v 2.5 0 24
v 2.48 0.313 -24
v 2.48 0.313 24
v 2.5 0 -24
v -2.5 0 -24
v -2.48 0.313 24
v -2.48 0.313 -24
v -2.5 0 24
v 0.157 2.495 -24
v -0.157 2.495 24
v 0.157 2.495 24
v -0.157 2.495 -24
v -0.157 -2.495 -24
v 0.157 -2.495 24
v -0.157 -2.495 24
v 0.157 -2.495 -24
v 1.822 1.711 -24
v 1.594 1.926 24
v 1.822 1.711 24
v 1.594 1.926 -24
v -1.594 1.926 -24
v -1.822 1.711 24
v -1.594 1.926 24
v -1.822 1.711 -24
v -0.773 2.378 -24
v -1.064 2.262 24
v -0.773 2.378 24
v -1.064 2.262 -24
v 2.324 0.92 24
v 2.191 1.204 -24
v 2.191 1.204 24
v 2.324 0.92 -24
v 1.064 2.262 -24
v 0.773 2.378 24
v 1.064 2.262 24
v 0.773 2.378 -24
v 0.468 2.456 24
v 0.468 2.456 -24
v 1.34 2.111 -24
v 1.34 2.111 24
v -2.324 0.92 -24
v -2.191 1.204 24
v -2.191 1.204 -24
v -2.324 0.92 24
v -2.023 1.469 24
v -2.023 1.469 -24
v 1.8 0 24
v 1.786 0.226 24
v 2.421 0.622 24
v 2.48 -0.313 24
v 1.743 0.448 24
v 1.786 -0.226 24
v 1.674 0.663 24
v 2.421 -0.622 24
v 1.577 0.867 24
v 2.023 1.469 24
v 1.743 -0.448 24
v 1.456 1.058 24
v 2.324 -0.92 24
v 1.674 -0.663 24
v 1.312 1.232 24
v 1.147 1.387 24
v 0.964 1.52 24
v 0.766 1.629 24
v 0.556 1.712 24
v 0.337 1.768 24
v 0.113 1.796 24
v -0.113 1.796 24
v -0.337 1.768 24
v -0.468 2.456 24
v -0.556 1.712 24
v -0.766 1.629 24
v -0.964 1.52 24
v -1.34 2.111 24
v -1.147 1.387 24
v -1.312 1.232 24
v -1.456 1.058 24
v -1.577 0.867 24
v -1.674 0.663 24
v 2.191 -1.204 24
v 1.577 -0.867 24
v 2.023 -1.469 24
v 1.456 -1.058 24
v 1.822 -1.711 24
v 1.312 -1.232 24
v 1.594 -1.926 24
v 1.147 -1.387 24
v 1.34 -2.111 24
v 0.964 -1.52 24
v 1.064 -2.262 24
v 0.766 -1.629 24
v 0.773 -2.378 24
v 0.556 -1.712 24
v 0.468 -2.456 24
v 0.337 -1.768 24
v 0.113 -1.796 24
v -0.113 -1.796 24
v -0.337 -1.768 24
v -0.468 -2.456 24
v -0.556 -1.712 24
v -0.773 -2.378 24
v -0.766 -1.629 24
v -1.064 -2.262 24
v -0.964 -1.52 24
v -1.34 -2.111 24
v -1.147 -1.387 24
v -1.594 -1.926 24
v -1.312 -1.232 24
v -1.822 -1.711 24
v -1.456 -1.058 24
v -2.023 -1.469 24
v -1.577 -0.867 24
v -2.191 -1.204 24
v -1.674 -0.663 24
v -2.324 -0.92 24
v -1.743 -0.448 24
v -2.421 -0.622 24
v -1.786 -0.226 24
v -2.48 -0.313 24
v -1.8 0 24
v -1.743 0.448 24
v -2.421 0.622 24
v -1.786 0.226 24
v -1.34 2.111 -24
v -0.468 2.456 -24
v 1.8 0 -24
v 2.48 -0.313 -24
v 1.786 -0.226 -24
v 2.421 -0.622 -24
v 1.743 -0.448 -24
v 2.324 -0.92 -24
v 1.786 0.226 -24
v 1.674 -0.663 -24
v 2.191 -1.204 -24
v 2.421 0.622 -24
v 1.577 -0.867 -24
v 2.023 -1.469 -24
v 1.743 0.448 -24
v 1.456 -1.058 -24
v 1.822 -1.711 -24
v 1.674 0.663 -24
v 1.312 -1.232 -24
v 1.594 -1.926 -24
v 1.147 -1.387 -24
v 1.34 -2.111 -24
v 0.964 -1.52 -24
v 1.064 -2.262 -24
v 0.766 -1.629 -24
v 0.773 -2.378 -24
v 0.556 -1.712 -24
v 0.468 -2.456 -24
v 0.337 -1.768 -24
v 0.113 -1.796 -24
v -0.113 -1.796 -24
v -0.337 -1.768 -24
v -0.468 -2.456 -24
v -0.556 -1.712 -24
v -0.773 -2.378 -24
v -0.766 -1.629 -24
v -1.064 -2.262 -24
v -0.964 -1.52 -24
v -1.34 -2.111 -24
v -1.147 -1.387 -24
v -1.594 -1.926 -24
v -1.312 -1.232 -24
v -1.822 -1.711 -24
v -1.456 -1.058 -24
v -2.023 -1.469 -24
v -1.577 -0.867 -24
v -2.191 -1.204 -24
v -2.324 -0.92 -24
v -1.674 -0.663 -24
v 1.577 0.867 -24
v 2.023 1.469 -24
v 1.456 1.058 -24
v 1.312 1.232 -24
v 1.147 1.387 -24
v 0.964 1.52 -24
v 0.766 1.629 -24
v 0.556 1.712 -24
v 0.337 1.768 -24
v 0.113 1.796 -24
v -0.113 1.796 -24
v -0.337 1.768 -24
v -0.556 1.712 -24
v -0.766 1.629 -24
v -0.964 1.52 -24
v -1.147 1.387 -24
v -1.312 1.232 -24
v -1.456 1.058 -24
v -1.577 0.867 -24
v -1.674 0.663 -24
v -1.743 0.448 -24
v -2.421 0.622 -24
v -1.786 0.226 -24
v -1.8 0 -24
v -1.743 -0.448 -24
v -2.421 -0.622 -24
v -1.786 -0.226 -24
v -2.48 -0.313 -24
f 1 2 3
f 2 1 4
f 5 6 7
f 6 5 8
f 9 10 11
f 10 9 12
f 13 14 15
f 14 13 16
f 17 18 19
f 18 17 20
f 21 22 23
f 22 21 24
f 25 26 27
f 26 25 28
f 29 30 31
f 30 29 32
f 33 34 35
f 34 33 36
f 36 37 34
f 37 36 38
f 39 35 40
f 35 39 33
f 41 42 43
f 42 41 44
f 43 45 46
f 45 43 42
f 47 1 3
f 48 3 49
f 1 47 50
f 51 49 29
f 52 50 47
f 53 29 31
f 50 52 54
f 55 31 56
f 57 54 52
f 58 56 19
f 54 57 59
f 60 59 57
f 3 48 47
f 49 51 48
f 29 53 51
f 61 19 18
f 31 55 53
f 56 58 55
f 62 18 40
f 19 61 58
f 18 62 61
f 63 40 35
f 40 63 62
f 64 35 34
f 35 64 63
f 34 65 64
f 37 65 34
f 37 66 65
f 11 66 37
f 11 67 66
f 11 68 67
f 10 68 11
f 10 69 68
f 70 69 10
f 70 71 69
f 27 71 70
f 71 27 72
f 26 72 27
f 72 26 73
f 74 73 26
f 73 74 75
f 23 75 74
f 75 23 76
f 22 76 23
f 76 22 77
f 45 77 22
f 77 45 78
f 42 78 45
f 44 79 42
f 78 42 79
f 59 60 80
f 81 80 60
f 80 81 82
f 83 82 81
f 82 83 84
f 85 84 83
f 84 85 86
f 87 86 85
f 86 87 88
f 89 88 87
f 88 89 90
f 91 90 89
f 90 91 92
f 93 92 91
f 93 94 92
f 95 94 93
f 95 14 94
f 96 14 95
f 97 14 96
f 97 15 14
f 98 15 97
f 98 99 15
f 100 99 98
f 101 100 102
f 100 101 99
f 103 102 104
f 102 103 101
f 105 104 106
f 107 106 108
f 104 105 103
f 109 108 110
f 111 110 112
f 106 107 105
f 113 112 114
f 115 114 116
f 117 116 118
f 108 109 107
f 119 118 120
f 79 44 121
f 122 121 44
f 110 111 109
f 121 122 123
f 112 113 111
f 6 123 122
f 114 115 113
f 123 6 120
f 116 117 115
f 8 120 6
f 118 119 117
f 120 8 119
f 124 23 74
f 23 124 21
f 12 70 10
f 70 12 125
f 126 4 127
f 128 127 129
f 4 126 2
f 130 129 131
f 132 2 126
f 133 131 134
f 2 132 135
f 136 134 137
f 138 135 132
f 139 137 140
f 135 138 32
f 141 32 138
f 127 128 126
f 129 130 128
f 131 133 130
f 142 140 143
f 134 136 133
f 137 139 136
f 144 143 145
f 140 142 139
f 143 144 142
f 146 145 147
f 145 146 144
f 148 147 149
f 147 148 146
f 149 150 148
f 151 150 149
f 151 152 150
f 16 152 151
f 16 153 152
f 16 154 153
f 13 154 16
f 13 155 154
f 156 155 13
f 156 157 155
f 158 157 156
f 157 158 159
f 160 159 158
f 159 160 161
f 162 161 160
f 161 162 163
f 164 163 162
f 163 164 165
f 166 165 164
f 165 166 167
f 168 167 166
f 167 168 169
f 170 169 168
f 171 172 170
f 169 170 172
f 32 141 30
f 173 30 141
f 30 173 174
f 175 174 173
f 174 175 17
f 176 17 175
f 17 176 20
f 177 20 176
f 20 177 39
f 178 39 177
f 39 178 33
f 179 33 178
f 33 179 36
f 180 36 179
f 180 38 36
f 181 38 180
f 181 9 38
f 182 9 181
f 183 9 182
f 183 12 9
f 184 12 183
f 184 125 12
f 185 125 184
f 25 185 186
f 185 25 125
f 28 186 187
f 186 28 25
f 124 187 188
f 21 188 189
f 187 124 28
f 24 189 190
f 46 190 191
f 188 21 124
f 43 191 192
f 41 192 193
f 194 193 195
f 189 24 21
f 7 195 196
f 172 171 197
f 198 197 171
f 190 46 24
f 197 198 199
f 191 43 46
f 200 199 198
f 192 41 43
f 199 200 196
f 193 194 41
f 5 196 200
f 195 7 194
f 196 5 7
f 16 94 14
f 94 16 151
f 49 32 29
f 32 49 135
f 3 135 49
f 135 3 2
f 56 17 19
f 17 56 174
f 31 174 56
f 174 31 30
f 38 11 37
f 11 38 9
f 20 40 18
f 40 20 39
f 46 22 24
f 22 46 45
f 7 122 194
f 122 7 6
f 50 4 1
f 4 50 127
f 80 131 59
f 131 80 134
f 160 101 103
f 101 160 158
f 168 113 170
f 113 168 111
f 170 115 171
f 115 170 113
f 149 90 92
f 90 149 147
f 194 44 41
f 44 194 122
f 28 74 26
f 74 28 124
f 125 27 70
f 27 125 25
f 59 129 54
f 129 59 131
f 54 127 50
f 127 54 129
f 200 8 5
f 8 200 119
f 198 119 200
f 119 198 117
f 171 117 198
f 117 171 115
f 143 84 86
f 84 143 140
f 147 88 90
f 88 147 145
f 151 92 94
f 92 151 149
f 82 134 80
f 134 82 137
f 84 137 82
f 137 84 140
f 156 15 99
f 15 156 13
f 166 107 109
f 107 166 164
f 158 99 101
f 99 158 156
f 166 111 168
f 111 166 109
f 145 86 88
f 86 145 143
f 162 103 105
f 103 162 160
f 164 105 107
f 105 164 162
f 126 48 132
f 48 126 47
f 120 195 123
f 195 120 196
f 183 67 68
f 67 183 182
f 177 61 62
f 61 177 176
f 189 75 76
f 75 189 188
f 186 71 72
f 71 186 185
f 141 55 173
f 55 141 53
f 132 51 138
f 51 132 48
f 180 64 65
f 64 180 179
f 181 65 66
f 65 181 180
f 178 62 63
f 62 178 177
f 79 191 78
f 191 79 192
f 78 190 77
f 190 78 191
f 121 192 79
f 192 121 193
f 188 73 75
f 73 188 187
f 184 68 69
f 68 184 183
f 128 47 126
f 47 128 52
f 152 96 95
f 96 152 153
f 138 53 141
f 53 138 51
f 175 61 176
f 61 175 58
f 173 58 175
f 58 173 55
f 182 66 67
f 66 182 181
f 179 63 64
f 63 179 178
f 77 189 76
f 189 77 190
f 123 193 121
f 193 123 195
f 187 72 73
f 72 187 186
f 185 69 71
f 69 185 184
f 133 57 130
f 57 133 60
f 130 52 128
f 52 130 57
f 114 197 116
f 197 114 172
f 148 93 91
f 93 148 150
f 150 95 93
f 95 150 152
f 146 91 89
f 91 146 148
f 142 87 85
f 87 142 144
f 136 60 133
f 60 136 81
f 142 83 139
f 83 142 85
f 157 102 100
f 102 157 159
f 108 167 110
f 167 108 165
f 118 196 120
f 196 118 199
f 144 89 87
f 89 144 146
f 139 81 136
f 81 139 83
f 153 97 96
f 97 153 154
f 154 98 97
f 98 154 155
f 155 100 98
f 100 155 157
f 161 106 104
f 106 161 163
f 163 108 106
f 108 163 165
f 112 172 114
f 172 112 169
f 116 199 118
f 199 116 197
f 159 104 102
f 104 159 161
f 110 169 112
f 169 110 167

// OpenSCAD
$fn = 50;


difference() {
	union() {
		translate(v = [0, 0, -24.0000000000]) {
			cylinder(h = 48, r = 2.5000000000);
		}
	}
	union() {
		translate(v = [0, 0, -100.0000000000]) {
			cylinder(h = 200, r = 1.8000000000);
		}
	}
}
